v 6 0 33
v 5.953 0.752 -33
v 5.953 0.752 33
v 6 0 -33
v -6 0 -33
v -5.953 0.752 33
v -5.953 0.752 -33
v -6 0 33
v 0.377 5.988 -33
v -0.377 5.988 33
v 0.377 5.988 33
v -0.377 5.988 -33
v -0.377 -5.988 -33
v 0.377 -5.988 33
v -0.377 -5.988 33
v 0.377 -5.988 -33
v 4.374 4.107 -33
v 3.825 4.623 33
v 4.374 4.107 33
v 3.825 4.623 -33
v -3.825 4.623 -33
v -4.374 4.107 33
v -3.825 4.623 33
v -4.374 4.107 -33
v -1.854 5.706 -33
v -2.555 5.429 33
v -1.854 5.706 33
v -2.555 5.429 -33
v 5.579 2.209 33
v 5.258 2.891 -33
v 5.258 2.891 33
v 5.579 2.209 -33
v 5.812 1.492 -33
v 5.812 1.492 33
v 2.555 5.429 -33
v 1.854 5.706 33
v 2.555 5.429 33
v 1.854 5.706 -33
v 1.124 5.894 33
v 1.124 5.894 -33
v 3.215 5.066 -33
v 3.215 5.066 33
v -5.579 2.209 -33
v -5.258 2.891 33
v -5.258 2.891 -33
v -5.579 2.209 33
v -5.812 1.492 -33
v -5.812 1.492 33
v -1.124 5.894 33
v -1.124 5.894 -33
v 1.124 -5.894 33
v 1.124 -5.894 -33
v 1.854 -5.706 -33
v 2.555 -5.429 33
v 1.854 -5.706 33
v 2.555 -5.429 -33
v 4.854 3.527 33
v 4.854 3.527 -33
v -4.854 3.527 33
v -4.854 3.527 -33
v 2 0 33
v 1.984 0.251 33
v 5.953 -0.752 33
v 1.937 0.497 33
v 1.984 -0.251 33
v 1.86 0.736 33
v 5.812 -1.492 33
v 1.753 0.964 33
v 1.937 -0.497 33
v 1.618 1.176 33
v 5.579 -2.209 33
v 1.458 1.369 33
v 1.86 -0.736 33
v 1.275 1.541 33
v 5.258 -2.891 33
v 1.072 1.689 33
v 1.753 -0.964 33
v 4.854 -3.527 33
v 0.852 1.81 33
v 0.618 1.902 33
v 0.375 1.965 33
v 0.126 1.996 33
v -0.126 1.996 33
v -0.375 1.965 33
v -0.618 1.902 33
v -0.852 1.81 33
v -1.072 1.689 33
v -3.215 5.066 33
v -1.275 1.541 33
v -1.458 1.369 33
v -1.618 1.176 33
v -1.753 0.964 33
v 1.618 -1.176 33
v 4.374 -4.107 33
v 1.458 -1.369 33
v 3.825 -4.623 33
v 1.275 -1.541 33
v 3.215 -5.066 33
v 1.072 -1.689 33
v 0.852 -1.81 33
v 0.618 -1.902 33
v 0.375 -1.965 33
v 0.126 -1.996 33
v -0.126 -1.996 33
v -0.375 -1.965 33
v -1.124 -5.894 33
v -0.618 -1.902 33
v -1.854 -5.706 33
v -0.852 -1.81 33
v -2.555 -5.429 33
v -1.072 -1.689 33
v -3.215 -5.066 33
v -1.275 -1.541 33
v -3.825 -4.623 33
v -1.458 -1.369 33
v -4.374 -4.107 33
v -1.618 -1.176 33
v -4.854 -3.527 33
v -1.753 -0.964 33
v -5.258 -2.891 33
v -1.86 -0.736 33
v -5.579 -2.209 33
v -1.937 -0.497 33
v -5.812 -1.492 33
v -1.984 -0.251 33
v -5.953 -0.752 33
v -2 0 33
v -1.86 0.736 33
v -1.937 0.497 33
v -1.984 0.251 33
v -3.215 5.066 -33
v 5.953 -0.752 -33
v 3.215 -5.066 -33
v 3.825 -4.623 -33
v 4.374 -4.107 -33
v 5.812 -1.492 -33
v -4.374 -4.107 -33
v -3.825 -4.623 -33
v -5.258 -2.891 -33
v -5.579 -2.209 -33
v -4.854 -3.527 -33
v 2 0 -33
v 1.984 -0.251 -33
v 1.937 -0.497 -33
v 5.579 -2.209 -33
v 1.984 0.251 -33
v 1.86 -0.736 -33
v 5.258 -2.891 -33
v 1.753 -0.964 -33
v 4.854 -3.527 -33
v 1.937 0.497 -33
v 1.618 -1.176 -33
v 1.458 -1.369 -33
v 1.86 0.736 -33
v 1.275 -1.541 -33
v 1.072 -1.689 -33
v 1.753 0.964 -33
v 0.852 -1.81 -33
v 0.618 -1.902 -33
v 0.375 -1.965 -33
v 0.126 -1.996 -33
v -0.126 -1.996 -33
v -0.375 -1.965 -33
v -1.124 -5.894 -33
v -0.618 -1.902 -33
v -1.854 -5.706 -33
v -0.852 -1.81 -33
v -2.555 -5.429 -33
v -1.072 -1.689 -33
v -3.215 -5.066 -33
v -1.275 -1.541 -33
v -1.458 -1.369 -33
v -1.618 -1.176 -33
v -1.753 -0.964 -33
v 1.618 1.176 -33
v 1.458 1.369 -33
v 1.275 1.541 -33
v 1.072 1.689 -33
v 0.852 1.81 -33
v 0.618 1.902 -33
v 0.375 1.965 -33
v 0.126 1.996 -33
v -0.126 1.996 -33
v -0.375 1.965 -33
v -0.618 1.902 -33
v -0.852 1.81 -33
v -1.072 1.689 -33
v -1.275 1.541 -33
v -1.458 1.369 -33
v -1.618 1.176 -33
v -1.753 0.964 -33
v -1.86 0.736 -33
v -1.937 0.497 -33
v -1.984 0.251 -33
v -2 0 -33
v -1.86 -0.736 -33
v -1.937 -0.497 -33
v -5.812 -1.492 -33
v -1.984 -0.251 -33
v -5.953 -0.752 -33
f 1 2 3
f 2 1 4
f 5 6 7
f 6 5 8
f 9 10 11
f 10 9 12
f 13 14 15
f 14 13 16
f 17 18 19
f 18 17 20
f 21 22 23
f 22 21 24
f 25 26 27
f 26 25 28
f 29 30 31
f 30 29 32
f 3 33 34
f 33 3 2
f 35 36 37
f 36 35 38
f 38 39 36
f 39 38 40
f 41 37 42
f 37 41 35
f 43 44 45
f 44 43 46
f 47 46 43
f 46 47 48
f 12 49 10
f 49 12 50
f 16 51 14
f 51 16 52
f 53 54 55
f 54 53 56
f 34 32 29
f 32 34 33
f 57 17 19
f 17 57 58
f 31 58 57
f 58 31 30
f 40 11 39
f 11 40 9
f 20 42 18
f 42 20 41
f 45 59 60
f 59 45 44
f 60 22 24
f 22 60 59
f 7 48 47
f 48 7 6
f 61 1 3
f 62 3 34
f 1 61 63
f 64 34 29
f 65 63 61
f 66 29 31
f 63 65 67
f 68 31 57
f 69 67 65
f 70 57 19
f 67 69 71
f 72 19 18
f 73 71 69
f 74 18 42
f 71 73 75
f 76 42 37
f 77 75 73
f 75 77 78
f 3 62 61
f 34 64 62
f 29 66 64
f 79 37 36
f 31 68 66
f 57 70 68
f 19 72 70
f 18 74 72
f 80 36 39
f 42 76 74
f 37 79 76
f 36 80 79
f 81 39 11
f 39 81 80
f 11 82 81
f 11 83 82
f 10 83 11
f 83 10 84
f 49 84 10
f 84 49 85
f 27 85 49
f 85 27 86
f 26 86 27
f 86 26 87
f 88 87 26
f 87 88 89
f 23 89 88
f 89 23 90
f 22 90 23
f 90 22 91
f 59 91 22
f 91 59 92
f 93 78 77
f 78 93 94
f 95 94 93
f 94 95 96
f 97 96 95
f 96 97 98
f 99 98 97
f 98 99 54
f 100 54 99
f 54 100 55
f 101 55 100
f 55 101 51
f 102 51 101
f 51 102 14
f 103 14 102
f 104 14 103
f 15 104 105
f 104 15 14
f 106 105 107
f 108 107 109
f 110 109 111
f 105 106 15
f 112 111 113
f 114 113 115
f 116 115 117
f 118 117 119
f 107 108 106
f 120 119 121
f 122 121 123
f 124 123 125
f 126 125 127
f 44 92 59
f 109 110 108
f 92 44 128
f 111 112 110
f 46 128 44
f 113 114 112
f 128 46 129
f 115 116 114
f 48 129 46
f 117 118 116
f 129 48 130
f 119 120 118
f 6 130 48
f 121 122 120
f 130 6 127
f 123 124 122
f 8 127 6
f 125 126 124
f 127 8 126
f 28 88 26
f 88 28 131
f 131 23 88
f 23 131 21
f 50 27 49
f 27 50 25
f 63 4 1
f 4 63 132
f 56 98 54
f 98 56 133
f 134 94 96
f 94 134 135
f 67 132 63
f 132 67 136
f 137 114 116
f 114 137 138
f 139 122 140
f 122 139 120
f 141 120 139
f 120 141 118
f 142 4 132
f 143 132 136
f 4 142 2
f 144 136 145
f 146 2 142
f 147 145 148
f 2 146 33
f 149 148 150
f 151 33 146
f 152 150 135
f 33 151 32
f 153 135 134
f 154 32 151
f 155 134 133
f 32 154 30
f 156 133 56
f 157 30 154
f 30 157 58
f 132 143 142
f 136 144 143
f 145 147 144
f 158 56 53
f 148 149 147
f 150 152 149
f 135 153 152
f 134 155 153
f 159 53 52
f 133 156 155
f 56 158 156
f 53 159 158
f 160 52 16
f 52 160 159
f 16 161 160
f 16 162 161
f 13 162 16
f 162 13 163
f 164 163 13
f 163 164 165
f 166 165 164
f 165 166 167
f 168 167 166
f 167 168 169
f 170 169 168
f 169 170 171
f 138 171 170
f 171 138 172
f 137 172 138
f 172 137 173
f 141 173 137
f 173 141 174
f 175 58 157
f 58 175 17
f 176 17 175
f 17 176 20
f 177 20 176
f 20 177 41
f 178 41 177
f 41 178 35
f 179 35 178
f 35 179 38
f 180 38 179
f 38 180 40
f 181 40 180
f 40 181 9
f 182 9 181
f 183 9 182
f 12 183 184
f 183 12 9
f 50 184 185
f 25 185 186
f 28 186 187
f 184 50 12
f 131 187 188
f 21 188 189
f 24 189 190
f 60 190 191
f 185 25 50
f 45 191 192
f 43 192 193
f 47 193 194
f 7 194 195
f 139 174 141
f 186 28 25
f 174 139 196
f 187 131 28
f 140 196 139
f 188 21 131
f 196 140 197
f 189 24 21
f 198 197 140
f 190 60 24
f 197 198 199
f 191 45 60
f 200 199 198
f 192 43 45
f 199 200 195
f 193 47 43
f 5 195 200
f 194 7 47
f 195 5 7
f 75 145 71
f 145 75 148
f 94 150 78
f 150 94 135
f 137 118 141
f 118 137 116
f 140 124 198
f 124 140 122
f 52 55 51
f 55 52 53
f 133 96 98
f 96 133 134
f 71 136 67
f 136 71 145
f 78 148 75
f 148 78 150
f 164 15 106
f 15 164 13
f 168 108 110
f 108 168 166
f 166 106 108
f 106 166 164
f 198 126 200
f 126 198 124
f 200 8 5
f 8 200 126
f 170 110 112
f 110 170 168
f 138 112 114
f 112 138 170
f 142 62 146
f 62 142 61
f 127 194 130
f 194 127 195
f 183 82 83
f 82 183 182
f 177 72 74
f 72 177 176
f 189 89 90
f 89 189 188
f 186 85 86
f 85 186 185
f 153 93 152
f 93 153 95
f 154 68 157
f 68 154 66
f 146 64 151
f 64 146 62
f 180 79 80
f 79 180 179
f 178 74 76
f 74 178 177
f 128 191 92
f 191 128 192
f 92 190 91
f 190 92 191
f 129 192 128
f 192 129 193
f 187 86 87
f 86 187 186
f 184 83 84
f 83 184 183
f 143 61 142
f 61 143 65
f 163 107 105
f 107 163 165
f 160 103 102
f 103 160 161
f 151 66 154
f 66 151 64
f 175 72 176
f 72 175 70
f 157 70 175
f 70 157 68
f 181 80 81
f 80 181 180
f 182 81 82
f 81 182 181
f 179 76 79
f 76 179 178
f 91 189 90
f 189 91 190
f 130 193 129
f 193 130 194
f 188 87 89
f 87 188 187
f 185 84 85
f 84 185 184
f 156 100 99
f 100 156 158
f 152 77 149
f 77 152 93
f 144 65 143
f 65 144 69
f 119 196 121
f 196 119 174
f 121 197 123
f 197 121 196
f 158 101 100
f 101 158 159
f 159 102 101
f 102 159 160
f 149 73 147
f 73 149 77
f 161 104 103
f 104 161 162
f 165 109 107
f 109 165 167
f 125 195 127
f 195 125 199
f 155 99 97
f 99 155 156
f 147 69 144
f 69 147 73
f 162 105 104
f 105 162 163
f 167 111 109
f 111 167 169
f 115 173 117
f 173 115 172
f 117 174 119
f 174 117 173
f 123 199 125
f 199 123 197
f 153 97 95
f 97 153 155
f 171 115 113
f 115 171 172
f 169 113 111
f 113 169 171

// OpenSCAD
$fn = 50;


difference() {
	union() {
		translate(v = [0, 0, -33.0000000000]) {
			cylinder(h = 66, r = 6.0000000000);
		}
	}
	union() {
		translate(v = [0, 0, -100.0000000000]) {
			cylinder(h = 200, r = 2);
		}
	}
}
